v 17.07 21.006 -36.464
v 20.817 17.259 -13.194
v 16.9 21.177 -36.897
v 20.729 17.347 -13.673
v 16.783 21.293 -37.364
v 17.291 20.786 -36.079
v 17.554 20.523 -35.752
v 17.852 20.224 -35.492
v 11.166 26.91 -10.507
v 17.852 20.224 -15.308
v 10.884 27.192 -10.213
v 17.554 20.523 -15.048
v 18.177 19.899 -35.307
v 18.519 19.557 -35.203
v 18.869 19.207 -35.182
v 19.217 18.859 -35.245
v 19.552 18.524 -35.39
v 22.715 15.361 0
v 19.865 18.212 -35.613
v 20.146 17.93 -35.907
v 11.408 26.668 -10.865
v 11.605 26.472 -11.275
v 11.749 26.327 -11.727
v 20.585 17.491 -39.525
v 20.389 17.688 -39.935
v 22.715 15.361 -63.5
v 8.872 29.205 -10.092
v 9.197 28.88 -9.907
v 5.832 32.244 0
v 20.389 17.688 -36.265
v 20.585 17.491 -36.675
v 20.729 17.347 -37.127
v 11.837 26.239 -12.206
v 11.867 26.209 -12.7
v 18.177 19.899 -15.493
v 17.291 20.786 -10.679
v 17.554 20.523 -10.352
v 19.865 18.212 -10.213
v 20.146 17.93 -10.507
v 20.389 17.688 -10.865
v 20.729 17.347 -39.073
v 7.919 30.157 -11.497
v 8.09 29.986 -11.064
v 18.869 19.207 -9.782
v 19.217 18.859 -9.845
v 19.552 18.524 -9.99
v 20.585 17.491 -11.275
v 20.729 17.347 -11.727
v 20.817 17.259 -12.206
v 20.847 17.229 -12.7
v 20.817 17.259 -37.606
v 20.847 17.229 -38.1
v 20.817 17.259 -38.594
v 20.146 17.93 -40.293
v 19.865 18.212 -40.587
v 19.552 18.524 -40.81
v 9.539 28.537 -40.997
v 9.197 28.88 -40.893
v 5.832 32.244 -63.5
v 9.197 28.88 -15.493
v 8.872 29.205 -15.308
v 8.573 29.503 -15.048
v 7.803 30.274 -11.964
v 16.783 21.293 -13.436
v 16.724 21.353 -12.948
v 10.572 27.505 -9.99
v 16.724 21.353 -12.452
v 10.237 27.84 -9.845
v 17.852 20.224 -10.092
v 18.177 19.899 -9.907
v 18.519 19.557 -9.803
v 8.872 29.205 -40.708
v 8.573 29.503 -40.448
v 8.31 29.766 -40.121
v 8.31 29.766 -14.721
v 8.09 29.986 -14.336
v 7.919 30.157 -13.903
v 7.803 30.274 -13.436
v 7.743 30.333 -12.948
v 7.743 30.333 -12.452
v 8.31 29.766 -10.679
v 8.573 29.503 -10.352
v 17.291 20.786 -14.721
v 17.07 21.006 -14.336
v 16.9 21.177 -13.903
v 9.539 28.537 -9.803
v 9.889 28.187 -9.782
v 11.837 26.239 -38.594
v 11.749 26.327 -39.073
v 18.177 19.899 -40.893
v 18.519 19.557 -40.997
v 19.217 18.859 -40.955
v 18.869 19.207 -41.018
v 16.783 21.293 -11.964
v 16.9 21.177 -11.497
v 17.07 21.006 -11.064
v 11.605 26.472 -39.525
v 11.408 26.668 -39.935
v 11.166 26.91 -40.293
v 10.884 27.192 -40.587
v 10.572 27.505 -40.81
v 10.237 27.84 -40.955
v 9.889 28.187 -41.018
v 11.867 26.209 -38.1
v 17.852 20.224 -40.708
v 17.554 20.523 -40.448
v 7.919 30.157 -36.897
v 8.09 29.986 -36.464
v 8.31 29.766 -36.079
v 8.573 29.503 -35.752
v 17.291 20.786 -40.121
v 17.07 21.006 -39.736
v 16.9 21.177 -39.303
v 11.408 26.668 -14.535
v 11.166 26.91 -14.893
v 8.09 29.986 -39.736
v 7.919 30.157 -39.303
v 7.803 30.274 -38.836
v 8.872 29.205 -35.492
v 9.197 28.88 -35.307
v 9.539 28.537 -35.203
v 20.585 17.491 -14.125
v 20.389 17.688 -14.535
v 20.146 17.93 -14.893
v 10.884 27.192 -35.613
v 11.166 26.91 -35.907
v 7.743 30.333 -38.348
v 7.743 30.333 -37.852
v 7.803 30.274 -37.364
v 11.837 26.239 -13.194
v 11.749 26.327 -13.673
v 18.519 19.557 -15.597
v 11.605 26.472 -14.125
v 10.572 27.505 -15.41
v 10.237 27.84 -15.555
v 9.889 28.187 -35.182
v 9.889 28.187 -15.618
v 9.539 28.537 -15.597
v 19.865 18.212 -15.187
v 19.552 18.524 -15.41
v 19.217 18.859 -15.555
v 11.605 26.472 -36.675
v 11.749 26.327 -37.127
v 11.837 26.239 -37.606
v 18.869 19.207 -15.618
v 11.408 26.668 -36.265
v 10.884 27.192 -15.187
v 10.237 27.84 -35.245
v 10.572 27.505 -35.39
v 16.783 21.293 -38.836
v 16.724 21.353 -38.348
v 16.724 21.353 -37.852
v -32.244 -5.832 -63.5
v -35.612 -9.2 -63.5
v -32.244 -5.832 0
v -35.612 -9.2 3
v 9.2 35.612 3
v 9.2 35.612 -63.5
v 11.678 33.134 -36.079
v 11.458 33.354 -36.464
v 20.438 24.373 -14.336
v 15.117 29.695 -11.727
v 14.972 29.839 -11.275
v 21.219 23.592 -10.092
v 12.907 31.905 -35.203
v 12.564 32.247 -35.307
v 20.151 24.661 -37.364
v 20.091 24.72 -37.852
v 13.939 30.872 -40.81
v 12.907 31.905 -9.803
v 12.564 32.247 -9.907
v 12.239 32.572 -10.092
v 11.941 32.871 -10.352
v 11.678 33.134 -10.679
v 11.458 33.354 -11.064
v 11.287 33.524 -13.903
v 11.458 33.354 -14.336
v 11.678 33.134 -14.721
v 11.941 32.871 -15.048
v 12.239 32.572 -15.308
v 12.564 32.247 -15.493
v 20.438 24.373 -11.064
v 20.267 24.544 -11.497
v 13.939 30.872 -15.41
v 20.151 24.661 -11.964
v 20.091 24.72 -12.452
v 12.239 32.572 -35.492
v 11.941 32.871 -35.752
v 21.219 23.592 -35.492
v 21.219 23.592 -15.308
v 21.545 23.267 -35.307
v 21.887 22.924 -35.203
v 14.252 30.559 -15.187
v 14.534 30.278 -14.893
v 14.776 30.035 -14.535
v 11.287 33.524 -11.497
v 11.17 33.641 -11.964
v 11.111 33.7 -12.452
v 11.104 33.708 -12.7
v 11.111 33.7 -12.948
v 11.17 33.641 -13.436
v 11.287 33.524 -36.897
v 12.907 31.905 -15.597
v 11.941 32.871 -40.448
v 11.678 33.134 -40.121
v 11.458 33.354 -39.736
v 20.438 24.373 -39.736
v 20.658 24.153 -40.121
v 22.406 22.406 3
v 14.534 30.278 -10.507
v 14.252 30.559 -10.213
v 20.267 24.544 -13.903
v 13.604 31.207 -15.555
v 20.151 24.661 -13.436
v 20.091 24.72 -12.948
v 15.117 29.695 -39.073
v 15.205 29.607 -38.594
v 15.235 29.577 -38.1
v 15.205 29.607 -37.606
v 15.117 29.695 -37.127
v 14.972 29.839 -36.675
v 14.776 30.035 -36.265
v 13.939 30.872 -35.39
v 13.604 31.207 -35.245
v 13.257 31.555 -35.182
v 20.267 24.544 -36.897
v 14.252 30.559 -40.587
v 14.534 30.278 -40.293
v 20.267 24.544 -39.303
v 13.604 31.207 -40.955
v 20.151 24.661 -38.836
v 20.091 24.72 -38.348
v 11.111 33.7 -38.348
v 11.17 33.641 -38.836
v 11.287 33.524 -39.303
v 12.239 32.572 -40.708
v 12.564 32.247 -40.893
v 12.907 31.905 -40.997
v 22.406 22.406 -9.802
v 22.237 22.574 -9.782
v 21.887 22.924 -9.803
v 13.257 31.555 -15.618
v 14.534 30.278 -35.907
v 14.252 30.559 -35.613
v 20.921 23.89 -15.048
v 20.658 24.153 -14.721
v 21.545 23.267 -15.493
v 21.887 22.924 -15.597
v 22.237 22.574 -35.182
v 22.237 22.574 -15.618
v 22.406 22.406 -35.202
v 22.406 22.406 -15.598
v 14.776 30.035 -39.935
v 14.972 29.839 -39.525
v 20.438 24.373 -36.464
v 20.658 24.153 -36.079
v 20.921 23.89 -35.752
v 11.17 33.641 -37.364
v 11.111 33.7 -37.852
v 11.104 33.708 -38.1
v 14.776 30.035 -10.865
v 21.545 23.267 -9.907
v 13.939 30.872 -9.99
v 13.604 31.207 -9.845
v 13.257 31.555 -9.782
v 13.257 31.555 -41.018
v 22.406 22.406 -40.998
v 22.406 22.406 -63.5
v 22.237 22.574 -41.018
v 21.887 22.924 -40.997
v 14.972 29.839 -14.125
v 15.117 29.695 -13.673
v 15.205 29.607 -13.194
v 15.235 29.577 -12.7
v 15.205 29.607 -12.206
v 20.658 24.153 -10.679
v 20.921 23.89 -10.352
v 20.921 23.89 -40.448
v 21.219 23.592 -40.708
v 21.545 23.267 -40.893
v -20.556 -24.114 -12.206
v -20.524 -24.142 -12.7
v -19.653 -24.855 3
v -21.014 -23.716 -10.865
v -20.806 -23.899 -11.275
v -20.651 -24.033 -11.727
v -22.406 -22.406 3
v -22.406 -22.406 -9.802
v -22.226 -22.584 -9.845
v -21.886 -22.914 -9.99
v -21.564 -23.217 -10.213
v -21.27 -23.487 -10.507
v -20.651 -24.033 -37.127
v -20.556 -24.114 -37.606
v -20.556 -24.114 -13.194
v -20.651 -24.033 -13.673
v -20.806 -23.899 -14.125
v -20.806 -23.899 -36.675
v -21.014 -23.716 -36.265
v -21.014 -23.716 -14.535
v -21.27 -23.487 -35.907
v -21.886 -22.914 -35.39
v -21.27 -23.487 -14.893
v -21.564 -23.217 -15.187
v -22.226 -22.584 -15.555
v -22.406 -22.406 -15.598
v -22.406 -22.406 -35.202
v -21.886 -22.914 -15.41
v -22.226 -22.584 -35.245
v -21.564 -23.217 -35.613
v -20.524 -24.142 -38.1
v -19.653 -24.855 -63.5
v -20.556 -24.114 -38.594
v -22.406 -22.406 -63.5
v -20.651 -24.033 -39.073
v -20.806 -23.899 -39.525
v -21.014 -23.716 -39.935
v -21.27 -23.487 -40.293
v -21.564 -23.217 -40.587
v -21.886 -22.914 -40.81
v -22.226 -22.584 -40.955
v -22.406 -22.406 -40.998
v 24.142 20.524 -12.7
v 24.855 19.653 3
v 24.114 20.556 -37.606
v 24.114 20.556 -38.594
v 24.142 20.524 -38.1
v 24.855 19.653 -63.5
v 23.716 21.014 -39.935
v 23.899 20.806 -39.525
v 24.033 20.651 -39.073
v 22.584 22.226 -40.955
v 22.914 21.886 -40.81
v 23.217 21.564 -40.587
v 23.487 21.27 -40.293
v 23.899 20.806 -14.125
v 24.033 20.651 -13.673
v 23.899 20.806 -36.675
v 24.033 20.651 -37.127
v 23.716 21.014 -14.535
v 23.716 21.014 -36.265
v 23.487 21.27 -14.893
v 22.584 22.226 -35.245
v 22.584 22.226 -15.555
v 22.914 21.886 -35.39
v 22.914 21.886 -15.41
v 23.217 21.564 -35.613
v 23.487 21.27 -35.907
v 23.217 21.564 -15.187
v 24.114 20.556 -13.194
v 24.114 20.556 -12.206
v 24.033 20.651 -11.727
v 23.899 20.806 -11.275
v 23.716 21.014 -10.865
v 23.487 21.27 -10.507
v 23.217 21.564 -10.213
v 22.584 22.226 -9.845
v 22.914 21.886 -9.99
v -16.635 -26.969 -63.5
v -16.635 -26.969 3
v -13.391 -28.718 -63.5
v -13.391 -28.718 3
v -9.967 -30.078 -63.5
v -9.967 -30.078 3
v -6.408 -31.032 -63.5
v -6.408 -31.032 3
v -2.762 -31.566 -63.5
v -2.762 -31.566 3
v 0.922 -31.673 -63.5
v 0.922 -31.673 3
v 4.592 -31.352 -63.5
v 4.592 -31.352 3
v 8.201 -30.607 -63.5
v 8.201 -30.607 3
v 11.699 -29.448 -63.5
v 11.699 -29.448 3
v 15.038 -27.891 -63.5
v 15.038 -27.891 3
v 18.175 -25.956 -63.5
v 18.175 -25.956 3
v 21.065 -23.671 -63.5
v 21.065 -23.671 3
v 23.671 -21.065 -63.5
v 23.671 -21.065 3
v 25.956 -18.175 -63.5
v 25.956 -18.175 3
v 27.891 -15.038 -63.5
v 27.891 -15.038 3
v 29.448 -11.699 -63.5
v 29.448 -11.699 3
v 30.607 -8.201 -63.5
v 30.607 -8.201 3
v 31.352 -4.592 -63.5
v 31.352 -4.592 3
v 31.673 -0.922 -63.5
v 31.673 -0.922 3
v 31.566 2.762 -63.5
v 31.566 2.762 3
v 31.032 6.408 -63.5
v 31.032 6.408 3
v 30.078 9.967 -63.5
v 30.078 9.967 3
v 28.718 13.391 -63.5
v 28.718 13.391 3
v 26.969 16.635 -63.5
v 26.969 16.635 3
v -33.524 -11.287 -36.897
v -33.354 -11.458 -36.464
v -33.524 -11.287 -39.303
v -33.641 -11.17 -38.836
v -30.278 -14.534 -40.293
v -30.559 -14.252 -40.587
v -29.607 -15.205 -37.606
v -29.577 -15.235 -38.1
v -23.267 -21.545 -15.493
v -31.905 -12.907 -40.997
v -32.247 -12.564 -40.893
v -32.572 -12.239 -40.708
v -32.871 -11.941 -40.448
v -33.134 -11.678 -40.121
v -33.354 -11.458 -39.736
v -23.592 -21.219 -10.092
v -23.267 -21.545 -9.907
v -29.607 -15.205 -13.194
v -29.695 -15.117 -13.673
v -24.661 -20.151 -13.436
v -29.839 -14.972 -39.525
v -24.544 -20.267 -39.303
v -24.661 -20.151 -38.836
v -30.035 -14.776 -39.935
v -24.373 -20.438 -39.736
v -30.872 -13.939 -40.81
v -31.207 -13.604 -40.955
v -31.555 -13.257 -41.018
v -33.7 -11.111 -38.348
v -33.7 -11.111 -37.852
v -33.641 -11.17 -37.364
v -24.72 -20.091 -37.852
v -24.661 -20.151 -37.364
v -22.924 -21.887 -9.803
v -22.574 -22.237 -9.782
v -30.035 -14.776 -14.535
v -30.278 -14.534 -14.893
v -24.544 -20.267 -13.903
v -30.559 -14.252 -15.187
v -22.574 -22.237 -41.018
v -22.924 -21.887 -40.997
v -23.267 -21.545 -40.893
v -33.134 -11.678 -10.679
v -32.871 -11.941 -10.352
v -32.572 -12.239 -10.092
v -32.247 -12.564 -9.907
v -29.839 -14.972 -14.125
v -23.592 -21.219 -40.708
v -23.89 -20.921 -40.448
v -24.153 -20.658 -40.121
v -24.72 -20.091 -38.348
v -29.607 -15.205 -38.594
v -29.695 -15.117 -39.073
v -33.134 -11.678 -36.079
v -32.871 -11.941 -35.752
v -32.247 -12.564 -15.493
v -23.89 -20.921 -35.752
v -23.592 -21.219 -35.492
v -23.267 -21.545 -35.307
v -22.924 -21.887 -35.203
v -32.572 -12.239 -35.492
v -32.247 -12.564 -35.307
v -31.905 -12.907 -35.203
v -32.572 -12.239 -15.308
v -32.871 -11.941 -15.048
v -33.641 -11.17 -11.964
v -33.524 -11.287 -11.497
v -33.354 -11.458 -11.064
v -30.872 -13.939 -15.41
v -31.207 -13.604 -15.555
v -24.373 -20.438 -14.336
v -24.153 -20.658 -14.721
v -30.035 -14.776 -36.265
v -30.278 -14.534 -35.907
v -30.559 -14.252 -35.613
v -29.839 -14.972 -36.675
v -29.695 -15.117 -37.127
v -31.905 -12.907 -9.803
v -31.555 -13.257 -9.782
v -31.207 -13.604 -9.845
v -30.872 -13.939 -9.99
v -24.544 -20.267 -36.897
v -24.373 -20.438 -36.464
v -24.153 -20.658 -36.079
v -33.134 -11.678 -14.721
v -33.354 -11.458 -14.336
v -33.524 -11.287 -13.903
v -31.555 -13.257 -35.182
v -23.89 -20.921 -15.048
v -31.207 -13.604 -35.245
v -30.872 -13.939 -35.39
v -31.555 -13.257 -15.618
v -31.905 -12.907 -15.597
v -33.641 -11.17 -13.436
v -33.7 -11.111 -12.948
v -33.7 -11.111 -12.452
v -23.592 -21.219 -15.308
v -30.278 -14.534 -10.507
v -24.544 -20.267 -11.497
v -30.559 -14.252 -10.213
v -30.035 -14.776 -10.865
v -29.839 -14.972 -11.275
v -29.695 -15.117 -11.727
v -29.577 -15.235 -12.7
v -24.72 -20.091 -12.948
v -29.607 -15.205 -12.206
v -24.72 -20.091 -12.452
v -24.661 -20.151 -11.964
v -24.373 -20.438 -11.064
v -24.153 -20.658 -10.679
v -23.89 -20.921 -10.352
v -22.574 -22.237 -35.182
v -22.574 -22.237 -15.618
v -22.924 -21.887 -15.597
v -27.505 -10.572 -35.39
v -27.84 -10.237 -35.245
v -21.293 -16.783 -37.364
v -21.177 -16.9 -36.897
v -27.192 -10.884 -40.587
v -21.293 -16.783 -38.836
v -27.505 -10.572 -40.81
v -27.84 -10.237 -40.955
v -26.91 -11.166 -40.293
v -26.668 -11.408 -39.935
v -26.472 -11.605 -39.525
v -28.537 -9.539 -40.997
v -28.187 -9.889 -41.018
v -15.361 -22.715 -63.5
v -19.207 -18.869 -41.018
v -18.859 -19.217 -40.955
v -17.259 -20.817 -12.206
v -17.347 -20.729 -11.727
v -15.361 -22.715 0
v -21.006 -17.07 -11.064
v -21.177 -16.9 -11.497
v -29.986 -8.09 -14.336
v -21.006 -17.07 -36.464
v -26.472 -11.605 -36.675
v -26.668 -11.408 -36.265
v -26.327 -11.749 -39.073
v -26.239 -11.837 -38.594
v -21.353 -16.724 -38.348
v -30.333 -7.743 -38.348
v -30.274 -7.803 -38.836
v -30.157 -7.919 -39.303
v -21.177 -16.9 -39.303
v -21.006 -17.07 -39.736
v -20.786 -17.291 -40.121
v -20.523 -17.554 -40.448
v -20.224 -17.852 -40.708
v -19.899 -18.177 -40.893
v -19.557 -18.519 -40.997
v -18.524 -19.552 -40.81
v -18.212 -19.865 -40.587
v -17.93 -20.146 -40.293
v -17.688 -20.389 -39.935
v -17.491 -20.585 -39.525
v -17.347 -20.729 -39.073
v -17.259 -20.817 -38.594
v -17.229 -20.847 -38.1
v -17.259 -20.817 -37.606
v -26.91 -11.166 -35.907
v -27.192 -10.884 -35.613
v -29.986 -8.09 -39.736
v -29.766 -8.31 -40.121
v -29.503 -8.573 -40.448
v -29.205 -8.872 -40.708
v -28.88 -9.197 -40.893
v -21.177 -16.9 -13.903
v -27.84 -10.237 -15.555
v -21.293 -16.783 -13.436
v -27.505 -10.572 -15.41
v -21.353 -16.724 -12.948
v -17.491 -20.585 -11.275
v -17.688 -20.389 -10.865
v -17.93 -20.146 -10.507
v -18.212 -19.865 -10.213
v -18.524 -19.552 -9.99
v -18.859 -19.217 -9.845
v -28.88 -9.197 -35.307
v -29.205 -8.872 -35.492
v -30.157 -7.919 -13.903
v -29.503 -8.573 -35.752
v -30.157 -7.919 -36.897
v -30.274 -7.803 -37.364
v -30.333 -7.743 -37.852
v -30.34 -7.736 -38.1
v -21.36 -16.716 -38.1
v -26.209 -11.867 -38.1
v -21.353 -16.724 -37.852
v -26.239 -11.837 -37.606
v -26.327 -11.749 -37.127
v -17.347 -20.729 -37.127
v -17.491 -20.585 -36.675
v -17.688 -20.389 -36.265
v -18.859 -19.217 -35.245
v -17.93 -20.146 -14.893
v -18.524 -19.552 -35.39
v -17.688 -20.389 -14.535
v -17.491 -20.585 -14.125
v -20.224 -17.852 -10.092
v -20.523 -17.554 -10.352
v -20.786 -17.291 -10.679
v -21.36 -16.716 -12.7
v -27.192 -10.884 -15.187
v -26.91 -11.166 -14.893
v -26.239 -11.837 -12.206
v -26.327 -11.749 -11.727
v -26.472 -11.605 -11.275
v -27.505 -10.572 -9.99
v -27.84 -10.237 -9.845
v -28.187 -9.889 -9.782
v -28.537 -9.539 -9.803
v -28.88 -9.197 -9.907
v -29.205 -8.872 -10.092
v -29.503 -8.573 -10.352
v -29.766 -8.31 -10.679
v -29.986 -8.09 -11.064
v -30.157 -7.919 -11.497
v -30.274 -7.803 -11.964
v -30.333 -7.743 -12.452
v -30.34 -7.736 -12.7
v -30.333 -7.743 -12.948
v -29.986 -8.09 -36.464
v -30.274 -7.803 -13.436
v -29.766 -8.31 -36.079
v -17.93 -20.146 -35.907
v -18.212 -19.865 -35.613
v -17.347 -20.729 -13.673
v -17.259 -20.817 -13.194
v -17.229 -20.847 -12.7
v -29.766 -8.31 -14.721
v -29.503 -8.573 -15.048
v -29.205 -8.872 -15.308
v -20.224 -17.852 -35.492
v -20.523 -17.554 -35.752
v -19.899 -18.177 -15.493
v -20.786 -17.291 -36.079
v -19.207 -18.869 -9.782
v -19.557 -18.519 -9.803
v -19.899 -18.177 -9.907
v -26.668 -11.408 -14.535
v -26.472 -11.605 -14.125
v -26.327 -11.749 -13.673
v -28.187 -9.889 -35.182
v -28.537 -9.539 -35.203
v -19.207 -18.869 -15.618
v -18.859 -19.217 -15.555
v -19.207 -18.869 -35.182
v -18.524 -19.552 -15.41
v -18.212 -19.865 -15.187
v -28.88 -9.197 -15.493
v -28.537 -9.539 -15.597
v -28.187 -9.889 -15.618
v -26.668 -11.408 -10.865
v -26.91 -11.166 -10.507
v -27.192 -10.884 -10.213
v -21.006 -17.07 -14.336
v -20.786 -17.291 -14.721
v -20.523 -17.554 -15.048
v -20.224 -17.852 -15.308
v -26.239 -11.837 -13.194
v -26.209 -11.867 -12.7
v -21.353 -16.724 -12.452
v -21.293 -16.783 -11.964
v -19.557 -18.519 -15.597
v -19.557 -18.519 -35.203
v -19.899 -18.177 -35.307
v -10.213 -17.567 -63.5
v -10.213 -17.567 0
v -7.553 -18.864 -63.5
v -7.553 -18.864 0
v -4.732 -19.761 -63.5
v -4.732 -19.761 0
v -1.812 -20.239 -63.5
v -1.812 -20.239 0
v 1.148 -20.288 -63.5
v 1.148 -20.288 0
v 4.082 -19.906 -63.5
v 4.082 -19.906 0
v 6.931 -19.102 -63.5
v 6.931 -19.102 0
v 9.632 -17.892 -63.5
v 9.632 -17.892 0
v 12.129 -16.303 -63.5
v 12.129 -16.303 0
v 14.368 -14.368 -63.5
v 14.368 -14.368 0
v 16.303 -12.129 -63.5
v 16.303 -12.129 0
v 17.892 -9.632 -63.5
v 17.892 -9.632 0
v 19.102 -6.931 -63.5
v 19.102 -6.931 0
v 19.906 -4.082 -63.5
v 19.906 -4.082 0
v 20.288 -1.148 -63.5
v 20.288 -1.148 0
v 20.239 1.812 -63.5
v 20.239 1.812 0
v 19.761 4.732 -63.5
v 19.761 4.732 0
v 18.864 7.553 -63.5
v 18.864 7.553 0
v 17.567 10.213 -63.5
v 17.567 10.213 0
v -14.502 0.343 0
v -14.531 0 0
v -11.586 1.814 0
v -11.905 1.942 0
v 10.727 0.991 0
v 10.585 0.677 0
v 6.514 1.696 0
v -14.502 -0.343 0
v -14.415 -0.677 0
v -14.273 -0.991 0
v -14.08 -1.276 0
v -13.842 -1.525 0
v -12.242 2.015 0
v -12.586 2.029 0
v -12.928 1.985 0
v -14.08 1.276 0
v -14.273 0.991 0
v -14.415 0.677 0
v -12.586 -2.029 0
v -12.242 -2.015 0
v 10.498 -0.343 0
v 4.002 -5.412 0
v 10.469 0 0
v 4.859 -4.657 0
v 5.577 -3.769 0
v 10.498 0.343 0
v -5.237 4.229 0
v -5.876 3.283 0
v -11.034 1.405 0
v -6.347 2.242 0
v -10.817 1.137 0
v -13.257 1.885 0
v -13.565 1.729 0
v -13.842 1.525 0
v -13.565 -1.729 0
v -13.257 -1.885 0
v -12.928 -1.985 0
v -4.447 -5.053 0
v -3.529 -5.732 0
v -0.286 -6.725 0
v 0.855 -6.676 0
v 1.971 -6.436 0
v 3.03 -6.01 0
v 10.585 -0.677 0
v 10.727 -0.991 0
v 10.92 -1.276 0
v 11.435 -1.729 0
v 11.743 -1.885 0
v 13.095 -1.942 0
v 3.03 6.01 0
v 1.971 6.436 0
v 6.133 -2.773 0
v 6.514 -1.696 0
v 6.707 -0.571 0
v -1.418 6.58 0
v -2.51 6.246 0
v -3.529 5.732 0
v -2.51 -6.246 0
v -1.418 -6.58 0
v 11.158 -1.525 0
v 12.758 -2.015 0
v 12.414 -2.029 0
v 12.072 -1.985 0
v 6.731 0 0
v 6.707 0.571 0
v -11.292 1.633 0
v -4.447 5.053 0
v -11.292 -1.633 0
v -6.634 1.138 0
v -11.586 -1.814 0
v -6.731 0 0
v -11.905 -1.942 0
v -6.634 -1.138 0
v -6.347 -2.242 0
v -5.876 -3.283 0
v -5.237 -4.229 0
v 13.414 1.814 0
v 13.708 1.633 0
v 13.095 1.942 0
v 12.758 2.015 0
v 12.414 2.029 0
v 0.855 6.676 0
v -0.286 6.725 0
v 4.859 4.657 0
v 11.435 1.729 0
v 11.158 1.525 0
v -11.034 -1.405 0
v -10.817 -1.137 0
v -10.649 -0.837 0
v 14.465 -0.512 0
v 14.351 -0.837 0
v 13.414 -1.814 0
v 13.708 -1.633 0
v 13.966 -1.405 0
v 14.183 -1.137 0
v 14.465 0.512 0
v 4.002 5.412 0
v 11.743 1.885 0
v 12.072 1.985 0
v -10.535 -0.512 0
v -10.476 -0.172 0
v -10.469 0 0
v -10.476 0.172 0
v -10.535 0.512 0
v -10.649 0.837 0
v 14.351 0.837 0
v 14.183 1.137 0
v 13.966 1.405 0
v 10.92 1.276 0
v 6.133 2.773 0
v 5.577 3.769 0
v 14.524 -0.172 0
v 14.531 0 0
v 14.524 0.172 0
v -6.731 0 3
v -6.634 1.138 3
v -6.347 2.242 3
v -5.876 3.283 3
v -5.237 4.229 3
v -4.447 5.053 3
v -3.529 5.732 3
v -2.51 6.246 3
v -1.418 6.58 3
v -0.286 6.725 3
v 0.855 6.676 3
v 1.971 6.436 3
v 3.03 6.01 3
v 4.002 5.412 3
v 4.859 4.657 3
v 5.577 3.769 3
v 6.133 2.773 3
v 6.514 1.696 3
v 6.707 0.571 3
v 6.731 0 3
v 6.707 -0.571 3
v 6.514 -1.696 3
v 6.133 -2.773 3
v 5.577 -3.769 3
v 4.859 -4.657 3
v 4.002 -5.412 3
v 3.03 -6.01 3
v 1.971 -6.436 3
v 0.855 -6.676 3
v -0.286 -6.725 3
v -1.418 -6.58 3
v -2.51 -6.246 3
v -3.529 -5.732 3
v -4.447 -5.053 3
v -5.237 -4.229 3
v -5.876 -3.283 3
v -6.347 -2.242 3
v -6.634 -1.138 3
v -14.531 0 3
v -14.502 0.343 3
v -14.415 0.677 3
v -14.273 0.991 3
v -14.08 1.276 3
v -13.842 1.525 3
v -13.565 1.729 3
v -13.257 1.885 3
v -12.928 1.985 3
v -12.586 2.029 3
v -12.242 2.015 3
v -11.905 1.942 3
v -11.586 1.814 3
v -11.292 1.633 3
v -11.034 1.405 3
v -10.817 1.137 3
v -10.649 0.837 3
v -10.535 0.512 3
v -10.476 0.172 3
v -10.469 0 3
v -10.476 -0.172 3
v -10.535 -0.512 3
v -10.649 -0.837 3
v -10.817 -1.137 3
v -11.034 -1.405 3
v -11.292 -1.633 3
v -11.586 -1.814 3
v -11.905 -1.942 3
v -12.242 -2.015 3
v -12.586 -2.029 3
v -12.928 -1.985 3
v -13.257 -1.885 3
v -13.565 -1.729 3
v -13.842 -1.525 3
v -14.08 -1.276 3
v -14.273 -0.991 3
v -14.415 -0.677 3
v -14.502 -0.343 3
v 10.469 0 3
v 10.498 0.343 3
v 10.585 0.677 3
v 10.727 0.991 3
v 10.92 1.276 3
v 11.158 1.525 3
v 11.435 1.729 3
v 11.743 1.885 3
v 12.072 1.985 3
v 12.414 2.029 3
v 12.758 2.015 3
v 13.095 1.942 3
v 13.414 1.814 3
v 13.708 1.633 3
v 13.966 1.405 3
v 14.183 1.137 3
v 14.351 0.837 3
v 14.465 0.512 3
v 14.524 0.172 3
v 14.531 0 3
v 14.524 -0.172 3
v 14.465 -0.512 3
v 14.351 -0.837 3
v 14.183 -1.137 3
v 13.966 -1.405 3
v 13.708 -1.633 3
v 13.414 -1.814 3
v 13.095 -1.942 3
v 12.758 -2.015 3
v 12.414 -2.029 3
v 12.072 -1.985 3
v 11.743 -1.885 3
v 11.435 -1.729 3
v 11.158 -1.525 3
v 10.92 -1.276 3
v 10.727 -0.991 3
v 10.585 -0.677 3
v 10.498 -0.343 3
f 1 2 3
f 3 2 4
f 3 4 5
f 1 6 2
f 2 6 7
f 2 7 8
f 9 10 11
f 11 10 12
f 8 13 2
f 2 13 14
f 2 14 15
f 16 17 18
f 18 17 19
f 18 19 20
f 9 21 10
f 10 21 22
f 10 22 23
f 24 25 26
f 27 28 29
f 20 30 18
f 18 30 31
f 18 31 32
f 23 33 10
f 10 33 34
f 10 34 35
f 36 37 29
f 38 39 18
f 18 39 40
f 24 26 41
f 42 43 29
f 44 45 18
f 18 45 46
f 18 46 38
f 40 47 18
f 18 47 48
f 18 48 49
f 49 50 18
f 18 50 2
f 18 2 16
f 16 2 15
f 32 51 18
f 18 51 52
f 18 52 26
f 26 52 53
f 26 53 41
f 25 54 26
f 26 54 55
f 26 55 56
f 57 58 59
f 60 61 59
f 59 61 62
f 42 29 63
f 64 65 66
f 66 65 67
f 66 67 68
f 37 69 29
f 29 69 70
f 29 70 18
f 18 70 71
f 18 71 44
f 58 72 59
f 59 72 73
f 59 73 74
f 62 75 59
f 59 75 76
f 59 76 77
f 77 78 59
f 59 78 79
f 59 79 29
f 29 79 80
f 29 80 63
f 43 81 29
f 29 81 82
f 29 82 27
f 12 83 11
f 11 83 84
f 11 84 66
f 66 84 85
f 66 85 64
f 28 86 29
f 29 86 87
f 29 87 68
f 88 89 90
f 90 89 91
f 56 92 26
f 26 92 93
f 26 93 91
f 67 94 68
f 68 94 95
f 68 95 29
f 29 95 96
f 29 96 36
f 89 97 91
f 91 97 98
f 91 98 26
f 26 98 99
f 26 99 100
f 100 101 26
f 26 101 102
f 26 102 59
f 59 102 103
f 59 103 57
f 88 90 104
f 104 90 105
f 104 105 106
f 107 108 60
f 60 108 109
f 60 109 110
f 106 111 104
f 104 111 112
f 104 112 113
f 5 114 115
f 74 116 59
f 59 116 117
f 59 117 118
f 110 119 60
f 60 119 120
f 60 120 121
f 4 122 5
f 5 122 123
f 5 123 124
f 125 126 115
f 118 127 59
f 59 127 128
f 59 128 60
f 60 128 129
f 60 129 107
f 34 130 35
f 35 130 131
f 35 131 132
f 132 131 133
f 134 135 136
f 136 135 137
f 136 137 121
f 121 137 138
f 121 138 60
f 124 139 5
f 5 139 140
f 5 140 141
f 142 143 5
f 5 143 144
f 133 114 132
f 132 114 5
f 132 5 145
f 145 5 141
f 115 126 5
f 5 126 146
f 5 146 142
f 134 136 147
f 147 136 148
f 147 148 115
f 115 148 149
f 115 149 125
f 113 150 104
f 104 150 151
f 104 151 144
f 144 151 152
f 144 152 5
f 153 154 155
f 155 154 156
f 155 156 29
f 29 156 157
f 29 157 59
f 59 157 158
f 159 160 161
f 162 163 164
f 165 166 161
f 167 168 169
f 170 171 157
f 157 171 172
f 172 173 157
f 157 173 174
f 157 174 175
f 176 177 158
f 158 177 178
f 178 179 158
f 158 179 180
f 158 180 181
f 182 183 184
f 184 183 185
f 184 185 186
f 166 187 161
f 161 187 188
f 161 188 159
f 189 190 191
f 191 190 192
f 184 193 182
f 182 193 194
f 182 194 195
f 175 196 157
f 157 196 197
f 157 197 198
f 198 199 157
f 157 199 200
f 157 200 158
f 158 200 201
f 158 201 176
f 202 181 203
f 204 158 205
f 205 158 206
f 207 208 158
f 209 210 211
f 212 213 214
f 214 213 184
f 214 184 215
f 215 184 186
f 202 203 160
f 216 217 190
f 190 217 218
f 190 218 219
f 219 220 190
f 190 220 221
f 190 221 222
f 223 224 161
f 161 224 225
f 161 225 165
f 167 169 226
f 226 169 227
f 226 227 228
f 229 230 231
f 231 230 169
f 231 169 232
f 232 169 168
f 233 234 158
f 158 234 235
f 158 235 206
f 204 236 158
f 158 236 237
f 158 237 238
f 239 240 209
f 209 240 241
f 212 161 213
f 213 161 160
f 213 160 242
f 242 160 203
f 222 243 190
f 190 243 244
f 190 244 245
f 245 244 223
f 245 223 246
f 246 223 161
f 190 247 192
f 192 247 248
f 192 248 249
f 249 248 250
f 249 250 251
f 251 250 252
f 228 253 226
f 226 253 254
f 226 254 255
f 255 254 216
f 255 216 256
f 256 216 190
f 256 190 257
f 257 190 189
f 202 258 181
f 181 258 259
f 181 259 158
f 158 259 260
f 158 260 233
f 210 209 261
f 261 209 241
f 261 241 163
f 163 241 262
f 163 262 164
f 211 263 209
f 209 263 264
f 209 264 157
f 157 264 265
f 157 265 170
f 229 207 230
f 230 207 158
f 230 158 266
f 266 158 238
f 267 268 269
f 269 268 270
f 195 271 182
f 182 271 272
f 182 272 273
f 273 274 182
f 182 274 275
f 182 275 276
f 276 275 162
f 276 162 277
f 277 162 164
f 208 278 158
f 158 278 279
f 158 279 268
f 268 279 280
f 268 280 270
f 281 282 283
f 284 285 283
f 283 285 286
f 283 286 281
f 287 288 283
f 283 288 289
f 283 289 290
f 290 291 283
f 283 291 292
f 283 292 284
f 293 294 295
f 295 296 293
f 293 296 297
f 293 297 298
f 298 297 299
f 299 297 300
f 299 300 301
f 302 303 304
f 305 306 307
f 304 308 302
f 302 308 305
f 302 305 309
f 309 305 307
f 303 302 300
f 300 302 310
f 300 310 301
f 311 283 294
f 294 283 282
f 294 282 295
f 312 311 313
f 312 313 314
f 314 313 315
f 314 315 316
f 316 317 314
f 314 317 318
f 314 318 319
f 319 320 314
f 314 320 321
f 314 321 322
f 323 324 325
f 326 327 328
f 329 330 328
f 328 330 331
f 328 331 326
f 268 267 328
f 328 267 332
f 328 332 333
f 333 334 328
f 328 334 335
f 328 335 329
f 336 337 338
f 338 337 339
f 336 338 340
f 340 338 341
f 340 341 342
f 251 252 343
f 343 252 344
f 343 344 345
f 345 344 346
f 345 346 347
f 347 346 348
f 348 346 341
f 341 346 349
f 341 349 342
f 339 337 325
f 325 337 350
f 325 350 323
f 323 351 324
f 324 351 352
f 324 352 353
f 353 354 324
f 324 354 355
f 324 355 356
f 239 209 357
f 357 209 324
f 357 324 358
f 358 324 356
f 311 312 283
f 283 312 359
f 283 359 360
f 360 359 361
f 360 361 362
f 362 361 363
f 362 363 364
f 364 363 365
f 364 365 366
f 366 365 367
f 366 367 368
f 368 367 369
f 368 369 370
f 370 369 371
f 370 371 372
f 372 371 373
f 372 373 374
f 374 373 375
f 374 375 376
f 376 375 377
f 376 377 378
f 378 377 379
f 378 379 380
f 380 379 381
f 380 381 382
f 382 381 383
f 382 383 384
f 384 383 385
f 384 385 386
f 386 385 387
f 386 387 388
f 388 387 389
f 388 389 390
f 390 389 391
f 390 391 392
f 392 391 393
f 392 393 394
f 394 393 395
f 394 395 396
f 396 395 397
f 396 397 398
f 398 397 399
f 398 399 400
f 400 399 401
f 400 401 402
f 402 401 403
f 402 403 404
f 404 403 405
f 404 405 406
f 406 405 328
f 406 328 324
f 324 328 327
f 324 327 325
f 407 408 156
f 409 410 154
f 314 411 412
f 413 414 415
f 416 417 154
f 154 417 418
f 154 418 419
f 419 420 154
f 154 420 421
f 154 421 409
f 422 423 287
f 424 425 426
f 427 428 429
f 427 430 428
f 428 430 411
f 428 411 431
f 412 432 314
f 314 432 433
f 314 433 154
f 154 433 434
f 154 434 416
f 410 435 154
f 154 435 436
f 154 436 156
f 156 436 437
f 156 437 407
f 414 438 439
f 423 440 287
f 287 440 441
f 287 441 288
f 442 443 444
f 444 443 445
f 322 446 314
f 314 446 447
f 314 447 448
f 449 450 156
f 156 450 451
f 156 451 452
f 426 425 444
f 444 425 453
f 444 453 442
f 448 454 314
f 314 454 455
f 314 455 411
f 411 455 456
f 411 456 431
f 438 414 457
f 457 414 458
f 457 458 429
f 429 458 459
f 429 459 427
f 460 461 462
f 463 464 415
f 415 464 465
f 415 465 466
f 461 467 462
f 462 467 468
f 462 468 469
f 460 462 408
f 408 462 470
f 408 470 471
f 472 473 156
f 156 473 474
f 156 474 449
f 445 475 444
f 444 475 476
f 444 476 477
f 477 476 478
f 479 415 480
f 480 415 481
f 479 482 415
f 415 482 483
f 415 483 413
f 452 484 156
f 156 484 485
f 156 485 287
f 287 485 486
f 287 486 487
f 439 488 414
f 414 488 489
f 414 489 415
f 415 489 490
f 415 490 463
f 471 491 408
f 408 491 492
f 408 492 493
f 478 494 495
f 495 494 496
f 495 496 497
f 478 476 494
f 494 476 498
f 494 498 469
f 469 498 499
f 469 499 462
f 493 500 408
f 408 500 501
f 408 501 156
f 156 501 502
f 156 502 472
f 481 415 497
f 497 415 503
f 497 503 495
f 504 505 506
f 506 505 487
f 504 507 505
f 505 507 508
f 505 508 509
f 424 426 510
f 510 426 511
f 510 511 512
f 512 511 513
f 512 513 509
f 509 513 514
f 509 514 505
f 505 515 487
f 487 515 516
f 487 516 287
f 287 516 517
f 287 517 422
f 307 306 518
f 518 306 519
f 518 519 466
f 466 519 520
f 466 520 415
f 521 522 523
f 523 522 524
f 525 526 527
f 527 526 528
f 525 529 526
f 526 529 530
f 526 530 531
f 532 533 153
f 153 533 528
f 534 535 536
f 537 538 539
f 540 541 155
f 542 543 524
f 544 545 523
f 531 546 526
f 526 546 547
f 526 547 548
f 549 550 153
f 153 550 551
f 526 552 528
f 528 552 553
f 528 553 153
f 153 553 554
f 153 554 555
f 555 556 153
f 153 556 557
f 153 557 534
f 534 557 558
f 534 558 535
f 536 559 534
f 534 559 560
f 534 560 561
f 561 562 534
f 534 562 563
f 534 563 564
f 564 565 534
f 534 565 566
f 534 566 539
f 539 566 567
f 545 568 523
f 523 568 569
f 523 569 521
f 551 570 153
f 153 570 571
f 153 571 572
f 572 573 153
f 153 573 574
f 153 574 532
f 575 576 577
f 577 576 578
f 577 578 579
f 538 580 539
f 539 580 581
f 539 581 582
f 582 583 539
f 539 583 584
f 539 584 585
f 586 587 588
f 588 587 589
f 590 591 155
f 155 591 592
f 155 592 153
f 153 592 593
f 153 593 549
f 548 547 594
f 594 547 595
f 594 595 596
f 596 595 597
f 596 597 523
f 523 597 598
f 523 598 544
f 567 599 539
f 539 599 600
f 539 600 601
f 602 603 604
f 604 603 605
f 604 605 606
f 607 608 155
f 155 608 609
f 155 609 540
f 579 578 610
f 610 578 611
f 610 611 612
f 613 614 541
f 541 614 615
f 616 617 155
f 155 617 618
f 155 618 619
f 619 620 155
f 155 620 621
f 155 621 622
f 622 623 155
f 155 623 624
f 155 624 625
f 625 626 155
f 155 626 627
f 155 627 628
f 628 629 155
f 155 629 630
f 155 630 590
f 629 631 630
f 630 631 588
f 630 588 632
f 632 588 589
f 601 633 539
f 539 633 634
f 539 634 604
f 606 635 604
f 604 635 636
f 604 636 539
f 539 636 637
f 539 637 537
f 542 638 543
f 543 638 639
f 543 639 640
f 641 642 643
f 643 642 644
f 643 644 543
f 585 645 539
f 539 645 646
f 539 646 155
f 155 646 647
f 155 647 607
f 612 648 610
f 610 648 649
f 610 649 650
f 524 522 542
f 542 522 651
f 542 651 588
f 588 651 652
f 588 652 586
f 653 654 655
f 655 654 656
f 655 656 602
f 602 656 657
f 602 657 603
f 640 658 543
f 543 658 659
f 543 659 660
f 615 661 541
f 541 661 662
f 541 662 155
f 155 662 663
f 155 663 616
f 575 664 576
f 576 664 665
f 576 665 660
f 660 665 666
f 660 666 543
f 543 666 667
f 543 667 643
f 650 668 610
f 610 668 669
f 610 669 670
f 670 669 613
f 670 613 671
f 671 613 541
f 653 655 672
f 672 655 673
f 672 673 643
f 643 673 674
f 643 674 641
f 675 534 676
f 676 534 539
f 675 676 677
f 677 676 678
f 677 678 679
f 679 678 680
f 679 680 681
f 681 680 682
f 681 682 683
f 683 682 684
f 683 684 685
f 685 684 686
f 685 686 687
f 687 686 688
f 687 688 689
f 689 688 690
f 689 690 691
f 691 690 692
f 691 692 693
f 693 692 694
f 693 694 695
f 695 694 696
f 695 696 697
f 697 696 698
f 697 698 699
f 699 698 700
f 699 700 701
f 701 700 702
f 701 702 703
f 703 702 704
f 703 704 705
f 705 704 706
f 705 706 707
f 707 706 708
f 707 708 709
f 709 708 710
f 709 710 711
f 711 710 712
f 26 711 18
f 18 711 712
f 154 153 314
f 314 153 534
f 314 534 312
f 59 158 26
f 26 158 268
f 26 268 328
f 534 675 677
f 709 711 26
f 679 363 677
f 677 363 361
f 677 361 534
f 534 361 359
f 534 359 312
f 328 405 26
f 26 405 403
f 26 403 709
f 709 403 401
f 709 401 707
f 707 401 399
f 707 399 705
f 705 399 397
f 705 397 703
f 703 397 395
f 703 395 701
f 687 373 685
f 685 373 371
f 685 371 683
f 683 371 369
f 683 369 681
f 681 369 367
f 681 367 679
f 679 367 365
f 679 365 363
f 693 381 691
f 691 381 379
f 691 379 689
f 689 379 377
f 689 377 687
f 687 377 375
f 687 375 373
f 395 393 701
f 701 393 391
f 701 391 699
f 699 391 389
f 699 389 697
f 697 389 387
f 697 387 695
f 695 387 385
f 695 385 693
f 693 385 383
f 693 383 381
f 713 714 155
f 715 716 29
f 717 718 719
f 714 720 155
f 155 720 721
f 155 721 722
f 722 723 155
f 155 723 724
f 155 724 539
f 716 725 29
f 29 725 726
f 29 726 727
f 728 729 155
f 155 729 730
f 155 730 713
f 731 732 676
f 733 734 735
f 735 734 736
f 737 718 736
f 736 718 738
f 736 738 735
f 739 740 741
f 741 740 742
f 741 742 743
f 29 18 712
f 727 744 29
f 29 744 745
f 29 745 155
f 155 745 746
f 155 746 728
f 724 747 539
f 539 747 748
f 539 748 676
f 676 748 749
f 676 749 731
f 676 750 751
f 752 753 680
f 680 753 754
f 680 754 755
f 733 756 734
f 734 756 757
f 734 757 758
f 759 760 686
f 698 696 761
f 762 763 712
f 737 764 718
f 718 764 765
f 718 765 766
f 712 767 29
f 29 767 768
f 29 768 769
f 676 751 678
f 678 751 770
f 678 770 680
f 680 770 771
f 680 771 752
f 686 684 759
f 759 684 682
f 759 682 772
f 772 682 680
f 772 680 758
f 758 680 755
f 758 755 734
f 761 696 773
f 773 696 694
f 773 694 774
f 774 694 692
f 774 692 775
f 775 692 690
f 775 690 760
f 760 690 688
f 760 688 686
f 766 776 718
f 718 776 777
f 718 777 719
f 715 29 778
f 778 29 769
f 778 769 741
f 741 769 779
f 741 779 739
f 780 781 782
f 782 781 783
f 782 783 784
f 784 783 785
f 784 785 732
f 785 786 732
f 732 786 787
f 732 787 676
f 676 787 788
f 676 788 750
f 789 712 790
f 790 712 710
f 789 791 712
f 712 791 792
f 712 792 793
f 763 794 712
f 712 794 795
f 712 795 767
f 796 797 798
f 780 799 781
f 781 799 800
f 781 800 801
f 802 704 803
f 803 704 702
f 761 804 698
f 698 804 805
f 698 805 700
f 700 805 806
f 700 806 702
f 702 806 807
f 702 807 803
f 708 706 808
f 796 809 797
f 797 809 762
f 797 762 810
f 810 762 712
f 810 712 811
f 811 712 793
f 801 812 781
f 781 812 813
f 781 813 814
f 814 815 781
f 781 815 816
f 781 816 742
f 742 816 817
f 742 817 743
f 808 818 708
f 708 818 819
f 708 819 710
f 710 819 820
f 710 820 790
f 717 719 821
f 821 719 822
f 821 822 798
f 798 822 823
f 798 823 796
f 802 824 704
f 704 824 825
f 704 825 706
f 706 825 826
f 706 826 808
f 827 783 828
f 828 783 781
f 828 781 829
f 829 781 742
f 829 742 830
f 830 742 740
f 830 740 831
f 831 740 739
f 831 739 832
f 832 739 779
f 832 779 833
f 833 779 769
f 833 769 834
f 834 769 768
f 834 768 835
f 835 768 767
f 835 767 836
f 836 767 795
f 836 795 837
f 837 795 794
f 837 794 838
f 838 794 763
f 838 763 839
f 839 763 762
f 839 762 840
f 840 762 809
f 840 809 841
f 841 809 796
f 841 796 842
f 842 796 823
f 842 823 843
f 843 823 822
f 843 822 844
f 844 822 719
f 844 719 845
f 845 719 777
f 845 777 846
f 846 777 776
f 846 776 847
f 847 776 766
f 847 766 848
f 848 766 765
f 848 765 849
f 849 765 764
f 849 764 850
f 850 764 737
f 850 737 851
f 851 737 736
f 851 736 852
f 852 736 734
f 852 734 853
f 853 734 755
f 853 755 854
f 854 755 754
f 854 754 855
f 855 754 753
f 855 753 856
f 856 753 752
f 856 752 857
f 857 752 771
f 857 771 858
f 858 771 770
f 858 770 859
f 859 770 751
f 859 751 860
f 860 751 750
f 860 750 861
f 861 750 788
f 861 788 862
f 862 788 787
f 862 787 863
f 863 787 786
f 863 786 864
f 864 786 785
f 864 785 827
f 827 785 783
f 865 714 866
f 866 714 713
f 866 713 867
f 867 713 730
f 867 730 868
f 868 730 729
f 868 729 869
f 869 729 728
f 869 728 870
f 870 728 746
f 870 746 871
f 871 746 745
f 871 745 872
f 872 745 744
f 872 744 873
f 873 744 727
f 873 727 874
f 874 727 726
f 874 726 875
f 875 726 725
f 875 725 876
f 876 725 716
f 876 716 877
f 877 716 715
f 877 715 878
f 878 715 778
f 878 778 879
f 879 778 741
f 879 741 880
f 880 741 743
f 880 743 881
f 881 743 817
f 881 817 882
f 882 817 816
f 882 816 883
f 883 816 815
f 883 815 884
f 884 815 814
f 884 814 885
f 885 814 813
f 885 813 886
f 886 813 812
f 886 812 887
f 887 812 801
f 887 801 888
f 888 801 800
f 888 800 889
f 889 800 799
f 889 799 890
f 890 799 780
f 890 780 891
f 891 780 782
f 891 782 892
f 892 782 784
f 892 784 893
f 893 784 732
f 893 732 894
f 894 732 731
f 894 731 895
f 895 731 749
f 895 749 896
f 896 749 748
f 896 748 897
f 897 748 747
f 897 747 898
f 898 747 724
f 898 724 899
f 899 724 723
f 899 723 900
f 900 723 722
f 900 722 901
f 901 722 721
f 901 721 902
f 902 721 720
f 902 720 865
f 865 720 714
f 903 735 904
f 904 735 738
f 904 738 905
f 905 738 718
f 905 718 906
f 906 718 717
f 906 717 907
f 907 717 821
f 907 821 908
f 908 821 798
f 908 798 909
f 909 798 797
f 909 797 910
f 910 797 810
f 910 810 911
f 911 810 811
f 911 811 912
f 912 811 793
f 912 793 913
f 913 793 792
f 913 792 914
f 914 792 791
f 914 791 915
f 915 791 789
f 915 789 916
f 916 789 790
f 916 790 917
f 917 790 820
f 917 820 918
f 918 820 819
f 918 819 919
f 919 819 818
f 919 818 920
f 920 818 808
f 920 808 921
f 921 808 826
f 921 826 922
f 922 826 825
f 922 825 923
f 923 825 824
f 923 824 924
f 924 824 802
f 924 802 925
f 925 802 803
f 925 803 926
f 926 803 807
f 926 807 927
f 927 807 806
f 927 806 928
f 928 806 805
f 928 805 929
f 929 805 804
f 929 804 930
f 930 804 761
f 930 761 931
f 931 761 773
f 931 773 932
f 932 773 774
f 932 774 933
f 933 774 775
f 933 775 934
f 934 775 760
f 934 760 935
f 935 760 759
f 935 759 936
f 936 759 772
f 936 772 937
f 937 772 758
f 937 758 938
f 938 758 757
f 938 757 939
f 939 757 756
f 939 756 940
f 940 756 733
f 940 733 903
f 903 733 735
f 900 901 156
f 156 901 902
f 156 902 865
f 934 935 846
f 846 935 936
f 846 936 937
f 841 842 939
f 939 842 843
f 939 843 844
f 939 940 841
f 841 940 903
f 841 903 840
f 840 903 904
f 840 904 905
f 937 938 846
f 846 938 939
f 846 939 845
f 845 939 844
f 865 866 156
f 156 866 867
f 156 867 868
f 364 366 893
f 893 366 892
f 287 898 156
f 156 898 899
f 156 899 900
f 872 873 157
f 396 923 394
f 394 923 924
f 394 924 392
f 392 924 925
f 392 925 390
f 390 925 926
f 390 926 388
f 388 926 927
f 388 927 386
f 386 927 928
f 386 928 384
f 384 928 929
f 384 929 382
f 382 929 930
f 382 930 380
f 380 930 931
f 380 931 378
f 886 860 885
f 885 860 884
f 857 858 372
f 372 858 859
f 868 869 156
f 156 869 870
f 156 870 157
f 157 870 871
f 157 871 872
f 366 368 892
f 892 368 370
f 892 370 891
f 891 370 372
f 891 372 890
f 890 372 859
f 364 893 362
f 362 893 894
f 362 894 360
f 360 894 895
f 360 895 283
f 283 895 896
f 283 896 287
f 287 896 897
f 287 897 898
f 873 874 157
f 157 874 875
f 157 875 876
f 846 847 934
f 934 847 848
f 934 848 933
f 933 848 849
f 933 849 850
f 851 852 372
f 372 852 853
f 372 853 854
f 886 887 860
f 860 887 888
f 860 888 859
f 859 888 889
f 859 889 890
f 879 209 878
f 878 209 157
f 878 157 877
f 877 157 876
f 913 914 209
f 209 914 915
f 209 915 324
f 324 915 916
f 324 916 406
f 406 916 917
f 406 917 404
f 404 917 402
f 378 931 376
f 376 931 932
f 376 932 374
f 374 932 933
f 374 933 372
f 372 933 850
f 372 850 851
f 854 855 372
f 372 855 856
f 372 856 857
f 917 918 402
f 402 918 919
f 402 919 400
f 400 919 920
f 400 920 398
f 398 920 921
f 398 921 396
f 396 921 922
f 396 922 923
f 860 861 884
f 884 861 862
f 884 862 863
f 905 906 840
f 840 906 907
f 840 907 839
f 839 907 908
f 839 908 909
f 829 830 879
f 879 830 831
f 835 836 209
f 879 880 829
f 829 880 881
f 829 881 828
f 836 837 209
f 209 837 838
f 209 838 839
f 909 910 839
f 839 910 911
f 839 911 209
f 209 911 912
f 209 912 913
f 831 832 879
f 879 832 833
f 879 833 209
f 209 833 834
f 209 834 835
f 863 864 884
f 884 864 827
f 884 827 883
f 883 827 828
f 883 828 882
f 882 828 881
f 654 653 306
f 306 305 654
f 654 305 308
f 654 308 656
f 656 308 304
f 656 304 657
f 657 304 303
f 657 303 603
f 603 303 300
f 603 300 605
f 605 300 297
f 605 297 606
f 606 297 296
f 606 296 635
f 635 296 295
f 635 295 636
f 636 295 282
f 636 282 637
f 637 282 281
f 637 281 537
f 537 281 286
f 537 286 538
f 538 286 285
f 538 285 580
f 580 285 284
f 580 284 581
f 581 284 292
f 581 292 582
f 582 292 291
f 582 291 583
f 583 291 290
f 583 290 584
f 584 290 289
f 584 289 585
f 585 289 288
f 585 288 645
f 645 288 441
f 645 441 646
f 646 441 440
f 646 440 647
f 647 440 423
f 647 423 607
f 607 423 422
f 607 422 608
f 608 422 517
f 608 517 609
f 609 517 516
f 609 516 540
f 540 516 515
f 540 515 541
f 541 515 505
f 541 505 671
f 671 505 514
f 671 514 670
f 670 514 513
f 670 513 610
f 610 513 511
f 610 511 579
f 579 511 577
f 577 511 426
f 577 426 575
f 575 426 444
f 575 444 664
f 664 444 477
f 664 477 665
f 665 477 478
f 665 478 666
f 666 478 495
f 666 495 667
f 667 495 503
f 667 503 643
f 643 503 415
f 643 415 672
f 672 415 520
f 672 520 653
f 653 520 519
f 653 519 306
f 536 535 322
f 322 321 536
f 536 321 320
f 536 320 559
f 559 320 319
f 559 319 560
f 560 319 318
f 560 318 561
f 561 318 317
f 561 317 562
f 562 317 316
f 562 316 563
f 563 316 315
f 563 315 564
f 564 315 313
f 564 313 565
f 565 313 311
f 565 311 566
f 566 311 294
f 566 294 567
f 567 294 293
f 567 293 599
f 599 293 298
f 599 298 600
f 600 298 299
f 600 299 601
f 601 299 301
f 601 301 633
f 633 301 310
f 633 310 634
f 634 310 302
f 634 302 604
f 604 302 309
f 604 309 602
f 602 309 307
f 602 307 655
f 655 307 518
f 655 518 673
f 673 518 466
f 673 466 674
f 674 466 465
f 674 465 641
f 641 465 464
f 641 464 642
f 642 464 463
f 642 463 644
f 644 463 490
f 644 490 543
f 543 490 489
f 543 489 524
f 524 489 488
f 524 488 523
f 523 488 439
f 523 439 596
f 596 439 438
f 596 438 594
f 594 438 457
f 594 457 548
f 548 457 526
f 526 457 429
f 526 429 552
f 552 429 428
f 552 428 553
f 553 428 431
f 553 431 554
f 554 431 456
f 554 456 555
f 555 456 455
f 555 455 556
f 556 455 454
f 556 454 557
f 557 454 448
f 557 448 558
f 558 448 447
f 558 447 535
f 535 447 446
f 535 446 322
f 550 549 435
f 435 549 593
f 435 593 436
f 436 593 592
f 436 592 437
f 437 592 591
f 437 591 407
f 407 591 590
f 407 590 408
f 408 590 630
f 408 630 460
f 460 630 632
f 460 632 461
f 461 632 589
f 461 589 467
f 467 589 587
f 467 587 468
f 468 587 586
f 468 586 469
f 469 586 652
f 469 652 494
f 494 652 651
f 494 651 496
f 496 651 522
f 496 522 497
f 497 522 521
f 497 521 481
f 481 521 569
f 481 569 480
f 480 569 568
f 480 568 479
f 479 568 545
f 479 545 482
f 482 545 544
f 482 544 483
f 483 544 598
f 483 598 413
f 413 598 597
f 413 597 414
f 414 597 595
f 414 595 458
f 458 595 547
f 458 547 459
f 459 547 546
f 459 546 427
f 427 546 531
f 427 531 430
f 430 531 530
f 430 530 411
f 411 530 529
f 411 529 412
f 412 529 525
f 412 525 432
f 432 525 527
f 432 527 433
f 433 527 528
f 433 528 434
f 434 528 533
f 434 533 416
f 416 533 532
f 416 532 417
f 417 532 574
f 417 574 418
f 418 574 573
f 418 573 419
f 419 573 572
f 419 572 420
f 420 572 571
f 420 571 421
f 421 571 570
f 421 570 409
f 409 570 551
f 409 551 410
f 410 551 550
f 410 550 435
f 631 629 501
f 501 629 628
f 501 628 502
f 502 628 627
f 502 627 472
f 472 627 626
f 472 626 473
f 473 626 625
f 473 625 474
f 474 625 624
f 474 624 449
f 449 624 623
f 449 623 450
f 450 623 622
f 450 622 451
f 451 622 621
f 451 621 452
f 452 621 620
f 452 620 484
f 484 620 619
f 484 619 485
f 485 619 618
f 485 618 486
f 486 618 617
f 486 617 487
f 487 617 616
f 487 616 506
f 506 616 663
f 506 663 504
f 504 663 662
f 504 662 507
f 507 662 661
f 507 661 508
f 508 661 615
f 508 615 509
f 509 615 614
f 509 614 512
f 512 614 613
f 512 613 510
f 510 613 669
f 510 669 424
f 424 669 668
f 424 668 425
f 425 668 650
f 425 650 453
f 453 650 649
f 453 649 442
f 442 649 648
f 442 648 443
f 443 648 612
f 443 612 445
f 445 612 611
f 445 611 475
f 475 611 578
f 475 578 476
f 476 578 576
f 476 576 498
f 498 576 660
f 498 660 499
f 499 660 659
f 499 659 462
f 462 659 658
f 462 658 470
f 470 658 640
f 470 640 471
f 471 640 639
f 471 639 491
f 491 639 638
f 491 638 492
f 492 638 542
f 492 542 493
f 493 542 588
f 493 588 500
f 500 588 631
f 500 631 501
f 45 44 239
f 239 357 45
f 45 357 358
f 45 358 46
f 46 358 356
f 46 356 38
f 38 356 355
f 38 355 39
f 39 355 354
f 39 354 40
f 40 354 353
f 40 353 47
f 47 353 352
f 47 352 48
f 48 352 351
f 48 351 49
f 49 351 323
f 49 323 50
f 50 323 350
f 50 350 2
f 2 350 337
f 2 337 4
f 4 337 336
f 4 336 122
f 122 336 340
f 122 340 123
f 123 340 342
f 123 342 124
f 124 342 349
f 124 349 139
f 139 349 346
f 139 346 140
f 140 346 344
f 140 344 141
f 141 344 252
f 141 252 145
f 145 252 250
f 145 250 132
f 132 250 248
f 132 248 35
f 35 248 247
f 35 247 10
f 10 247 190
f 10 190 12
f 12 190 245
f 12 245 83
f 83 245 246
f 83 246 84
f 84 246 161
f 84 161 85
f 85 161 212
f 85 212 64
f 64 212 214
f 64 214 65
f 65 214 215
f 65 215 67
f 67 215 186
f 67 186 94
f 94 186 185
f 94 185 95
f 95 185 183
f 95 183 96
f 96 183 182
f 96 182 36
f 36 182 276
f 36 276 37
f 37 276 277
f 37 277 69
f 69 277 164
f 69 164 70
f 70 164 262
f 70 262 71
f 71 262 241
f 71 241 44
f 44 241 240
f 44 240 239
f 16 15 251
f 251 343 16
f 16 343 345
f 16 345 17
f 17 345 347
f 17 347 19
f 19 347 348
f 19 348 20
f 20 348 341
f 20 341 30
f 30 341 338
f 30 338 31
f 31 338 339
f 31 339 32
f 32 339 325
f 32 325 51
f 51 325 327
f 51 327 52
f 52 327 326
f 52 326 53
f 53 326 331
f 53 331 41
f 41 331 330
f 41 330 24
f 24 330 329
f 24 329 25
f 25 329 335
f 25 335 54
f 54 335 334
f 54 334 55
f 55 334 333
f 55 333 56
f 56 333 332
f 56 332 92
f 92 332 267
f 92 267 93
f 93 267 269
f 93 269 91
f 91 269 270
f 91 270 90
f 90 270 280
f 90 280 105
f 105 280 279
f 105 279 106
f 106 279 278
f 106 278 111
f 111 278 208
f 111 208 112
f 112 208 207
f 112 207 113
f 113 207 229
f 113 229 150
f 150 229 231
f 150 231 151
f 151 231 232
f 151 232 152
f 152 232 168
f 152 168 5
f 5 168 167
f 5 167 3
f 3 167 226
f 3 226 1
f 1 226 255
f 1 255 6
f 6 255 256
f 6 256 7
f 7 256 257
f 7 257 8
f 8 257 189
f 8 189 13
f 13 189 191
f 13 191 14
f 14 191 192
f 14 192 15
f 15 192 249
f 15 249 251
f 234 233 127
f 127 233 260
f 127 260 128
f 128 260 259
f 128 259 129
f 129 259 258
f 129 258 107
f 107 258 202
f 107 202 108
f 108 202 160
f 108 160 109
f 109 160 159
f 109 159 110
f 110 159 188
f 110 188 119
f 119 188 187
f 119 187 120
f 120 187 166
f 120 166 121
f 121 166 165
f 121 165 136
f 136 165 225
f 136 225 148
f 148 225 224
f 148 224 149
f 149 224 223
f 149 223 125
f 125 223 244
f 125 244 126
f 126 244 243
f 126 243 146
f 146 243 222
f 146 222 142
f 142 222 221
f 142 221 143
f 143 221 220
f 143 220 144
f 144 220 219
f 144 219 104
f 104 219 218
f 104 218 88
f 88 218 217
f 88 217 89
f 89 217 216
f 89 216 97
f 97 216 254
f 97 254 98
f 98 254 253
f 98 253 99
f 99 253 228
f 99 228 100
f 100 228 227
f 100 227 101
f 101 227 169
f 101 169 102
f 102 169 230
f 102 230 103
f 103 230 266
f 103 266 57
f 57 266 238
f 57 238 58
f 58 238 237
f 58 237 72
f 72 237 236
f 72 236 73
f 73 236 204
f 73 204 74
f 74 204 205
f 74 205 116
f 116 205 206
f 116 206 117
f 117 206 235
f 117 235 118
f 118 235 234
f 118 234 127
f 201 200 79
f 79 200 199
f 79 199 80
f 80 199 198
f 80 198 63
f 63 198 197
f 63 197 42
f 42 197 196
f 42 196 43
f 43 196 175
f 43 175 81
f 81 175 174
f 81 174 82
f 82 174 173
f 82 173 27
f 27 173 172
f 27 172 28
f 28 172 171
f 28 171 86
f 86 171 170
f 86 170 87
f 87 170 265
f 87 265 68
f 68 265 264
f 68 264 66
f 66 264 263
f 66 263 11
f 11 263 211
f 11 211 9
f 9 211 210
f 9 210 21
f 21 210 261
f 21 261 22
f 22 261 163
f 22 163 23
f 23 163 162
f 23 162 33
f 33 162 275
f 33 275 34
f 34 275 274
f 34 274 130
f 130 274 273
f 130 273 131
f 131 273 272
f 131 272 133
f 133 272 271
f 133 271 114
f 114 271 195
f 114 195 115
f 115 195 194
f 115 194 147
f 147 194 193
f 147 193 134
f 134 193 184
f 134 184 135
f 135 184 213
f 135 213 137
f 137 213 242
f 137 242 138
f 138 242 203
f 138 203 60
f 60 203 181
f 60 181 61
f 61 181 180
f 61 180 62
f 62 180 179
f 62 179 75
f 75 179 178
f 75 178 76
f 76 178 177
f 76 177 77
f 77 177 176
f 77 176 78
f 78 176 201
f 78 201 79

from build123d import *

# Parameters (mm, degrees)
BOSS_EXTRUDE1_DEPTH = 63.5
BOSS_EXTRUDE2_START = 3
SKETCH4_R           = 6.731
SKETCH4_R_2         = 2.0309967
BOSS_EXTRUDE2_DEPTH = 3
SKETCH5_R           = 2.921
CUT_EXTRUDE3_DEPTH  = 102.608265033


with BuildPart() as part:
    # Sketch2 → Boss-Extrude1 (new body)
    with BuildSketch(Plane.XY):
        with BuildLine():
            Line((5.832216731, 32.244069222), (9.199812777, 35.611665268))
            Line((9.199812777, 35.611665268), (22.405739022, 22.405739022))
            ThreePointArc((22.405739022, 22.405739022), (22.405739022, -22.405739022), (-22.405739022, -22.405739022))
            Line((-22.405739022, -22.405739022), (-35.611665268, -9.199812777))
            Line((-35.611665268, -9.199812777), (-32.244069222, -5.832216731))
            Line((-32.244069222, -5.832216731), (-15.361187714, -22.715098239))
            Line((-15.361187714, -22.715098239), (-10.21301234, -17.566922865))
            ThreePointArc((-10.21301234, -17.566922865), (14.368409794, -14.368409794), (17.566922865, 10.21301234))
            Line((17.566922865, 10.21301234), (22.715098239, 15.361187714))
            Line((22.715098239, 15.361187714), (5.832216731, 32.244069222))
        make_face()
    extrude(amount=-BOSS_EXTRUDE1_DEPTH)

    # Sketch4 → Boss-Extrude2 (add)
    with BuildSketch(Plane.XY.offset(BOSS_EXTRUDE2_START)):
        with BuildLine():
            Line((9.199812777, 35.611665268), (-35.611665268, -9.199812777))
            Line((-35.611665268, -9.199812777), (-22.405739022, -22.405739022))
            ThreePointArc((-22.405739022, -22.405739022), (22.405739022, -22.405739022), (22.405739022, 22.405739022))
            Line((22.405739022, 22.405739022), (9.199812777, 35.611665268))
        make_face()
        Circle(SKETCH4_R, mode=Mode.SUBTRACT)
        with Locations((12.5, 0)):
            Circle(SKETCH4_R_2, mode=Mode.SUBTRACT)
        with Locations((-12.5, 0)):
            Circle(SKETCH4_R_2, mode=Mode.SUBTRACT)
    extrude(amount=-BOSS_EXTRUDE2_DEPTH)

    # Sketch5 → Cut-Extrude3 (cut, through all)
    with BuildSketch(Plane(origin=(-22.405739022, -22.405739022, 0), x_dir=(0, 0, 1), z_dir=(-0.7071067811865476, -0.7071067811865476, 0))):
        with Locations(Location((-12.7, 0.3626, 0), (0, 0, 352.869161209))):
            Circle(SKETCH5_R)
        with Locations(Location((-12.7, 13.0626, 0), (0, 0, 270))):
            Circle(SKETCH5_R)
        with Locations(Location((-38.1, 13.0626, 0), (0, 0, 270))):
            Circle(SKETCH5_R)
        with Locations(Location((-38.1, 0.3626, 0), (0, 0, 352.869161209))):
            Circle(SKETCH5_R)
    extrude(amount=-CUT_EXTRUDE3_DEPTH, mode=Mode.SUBTRACT)


solid = part.part
